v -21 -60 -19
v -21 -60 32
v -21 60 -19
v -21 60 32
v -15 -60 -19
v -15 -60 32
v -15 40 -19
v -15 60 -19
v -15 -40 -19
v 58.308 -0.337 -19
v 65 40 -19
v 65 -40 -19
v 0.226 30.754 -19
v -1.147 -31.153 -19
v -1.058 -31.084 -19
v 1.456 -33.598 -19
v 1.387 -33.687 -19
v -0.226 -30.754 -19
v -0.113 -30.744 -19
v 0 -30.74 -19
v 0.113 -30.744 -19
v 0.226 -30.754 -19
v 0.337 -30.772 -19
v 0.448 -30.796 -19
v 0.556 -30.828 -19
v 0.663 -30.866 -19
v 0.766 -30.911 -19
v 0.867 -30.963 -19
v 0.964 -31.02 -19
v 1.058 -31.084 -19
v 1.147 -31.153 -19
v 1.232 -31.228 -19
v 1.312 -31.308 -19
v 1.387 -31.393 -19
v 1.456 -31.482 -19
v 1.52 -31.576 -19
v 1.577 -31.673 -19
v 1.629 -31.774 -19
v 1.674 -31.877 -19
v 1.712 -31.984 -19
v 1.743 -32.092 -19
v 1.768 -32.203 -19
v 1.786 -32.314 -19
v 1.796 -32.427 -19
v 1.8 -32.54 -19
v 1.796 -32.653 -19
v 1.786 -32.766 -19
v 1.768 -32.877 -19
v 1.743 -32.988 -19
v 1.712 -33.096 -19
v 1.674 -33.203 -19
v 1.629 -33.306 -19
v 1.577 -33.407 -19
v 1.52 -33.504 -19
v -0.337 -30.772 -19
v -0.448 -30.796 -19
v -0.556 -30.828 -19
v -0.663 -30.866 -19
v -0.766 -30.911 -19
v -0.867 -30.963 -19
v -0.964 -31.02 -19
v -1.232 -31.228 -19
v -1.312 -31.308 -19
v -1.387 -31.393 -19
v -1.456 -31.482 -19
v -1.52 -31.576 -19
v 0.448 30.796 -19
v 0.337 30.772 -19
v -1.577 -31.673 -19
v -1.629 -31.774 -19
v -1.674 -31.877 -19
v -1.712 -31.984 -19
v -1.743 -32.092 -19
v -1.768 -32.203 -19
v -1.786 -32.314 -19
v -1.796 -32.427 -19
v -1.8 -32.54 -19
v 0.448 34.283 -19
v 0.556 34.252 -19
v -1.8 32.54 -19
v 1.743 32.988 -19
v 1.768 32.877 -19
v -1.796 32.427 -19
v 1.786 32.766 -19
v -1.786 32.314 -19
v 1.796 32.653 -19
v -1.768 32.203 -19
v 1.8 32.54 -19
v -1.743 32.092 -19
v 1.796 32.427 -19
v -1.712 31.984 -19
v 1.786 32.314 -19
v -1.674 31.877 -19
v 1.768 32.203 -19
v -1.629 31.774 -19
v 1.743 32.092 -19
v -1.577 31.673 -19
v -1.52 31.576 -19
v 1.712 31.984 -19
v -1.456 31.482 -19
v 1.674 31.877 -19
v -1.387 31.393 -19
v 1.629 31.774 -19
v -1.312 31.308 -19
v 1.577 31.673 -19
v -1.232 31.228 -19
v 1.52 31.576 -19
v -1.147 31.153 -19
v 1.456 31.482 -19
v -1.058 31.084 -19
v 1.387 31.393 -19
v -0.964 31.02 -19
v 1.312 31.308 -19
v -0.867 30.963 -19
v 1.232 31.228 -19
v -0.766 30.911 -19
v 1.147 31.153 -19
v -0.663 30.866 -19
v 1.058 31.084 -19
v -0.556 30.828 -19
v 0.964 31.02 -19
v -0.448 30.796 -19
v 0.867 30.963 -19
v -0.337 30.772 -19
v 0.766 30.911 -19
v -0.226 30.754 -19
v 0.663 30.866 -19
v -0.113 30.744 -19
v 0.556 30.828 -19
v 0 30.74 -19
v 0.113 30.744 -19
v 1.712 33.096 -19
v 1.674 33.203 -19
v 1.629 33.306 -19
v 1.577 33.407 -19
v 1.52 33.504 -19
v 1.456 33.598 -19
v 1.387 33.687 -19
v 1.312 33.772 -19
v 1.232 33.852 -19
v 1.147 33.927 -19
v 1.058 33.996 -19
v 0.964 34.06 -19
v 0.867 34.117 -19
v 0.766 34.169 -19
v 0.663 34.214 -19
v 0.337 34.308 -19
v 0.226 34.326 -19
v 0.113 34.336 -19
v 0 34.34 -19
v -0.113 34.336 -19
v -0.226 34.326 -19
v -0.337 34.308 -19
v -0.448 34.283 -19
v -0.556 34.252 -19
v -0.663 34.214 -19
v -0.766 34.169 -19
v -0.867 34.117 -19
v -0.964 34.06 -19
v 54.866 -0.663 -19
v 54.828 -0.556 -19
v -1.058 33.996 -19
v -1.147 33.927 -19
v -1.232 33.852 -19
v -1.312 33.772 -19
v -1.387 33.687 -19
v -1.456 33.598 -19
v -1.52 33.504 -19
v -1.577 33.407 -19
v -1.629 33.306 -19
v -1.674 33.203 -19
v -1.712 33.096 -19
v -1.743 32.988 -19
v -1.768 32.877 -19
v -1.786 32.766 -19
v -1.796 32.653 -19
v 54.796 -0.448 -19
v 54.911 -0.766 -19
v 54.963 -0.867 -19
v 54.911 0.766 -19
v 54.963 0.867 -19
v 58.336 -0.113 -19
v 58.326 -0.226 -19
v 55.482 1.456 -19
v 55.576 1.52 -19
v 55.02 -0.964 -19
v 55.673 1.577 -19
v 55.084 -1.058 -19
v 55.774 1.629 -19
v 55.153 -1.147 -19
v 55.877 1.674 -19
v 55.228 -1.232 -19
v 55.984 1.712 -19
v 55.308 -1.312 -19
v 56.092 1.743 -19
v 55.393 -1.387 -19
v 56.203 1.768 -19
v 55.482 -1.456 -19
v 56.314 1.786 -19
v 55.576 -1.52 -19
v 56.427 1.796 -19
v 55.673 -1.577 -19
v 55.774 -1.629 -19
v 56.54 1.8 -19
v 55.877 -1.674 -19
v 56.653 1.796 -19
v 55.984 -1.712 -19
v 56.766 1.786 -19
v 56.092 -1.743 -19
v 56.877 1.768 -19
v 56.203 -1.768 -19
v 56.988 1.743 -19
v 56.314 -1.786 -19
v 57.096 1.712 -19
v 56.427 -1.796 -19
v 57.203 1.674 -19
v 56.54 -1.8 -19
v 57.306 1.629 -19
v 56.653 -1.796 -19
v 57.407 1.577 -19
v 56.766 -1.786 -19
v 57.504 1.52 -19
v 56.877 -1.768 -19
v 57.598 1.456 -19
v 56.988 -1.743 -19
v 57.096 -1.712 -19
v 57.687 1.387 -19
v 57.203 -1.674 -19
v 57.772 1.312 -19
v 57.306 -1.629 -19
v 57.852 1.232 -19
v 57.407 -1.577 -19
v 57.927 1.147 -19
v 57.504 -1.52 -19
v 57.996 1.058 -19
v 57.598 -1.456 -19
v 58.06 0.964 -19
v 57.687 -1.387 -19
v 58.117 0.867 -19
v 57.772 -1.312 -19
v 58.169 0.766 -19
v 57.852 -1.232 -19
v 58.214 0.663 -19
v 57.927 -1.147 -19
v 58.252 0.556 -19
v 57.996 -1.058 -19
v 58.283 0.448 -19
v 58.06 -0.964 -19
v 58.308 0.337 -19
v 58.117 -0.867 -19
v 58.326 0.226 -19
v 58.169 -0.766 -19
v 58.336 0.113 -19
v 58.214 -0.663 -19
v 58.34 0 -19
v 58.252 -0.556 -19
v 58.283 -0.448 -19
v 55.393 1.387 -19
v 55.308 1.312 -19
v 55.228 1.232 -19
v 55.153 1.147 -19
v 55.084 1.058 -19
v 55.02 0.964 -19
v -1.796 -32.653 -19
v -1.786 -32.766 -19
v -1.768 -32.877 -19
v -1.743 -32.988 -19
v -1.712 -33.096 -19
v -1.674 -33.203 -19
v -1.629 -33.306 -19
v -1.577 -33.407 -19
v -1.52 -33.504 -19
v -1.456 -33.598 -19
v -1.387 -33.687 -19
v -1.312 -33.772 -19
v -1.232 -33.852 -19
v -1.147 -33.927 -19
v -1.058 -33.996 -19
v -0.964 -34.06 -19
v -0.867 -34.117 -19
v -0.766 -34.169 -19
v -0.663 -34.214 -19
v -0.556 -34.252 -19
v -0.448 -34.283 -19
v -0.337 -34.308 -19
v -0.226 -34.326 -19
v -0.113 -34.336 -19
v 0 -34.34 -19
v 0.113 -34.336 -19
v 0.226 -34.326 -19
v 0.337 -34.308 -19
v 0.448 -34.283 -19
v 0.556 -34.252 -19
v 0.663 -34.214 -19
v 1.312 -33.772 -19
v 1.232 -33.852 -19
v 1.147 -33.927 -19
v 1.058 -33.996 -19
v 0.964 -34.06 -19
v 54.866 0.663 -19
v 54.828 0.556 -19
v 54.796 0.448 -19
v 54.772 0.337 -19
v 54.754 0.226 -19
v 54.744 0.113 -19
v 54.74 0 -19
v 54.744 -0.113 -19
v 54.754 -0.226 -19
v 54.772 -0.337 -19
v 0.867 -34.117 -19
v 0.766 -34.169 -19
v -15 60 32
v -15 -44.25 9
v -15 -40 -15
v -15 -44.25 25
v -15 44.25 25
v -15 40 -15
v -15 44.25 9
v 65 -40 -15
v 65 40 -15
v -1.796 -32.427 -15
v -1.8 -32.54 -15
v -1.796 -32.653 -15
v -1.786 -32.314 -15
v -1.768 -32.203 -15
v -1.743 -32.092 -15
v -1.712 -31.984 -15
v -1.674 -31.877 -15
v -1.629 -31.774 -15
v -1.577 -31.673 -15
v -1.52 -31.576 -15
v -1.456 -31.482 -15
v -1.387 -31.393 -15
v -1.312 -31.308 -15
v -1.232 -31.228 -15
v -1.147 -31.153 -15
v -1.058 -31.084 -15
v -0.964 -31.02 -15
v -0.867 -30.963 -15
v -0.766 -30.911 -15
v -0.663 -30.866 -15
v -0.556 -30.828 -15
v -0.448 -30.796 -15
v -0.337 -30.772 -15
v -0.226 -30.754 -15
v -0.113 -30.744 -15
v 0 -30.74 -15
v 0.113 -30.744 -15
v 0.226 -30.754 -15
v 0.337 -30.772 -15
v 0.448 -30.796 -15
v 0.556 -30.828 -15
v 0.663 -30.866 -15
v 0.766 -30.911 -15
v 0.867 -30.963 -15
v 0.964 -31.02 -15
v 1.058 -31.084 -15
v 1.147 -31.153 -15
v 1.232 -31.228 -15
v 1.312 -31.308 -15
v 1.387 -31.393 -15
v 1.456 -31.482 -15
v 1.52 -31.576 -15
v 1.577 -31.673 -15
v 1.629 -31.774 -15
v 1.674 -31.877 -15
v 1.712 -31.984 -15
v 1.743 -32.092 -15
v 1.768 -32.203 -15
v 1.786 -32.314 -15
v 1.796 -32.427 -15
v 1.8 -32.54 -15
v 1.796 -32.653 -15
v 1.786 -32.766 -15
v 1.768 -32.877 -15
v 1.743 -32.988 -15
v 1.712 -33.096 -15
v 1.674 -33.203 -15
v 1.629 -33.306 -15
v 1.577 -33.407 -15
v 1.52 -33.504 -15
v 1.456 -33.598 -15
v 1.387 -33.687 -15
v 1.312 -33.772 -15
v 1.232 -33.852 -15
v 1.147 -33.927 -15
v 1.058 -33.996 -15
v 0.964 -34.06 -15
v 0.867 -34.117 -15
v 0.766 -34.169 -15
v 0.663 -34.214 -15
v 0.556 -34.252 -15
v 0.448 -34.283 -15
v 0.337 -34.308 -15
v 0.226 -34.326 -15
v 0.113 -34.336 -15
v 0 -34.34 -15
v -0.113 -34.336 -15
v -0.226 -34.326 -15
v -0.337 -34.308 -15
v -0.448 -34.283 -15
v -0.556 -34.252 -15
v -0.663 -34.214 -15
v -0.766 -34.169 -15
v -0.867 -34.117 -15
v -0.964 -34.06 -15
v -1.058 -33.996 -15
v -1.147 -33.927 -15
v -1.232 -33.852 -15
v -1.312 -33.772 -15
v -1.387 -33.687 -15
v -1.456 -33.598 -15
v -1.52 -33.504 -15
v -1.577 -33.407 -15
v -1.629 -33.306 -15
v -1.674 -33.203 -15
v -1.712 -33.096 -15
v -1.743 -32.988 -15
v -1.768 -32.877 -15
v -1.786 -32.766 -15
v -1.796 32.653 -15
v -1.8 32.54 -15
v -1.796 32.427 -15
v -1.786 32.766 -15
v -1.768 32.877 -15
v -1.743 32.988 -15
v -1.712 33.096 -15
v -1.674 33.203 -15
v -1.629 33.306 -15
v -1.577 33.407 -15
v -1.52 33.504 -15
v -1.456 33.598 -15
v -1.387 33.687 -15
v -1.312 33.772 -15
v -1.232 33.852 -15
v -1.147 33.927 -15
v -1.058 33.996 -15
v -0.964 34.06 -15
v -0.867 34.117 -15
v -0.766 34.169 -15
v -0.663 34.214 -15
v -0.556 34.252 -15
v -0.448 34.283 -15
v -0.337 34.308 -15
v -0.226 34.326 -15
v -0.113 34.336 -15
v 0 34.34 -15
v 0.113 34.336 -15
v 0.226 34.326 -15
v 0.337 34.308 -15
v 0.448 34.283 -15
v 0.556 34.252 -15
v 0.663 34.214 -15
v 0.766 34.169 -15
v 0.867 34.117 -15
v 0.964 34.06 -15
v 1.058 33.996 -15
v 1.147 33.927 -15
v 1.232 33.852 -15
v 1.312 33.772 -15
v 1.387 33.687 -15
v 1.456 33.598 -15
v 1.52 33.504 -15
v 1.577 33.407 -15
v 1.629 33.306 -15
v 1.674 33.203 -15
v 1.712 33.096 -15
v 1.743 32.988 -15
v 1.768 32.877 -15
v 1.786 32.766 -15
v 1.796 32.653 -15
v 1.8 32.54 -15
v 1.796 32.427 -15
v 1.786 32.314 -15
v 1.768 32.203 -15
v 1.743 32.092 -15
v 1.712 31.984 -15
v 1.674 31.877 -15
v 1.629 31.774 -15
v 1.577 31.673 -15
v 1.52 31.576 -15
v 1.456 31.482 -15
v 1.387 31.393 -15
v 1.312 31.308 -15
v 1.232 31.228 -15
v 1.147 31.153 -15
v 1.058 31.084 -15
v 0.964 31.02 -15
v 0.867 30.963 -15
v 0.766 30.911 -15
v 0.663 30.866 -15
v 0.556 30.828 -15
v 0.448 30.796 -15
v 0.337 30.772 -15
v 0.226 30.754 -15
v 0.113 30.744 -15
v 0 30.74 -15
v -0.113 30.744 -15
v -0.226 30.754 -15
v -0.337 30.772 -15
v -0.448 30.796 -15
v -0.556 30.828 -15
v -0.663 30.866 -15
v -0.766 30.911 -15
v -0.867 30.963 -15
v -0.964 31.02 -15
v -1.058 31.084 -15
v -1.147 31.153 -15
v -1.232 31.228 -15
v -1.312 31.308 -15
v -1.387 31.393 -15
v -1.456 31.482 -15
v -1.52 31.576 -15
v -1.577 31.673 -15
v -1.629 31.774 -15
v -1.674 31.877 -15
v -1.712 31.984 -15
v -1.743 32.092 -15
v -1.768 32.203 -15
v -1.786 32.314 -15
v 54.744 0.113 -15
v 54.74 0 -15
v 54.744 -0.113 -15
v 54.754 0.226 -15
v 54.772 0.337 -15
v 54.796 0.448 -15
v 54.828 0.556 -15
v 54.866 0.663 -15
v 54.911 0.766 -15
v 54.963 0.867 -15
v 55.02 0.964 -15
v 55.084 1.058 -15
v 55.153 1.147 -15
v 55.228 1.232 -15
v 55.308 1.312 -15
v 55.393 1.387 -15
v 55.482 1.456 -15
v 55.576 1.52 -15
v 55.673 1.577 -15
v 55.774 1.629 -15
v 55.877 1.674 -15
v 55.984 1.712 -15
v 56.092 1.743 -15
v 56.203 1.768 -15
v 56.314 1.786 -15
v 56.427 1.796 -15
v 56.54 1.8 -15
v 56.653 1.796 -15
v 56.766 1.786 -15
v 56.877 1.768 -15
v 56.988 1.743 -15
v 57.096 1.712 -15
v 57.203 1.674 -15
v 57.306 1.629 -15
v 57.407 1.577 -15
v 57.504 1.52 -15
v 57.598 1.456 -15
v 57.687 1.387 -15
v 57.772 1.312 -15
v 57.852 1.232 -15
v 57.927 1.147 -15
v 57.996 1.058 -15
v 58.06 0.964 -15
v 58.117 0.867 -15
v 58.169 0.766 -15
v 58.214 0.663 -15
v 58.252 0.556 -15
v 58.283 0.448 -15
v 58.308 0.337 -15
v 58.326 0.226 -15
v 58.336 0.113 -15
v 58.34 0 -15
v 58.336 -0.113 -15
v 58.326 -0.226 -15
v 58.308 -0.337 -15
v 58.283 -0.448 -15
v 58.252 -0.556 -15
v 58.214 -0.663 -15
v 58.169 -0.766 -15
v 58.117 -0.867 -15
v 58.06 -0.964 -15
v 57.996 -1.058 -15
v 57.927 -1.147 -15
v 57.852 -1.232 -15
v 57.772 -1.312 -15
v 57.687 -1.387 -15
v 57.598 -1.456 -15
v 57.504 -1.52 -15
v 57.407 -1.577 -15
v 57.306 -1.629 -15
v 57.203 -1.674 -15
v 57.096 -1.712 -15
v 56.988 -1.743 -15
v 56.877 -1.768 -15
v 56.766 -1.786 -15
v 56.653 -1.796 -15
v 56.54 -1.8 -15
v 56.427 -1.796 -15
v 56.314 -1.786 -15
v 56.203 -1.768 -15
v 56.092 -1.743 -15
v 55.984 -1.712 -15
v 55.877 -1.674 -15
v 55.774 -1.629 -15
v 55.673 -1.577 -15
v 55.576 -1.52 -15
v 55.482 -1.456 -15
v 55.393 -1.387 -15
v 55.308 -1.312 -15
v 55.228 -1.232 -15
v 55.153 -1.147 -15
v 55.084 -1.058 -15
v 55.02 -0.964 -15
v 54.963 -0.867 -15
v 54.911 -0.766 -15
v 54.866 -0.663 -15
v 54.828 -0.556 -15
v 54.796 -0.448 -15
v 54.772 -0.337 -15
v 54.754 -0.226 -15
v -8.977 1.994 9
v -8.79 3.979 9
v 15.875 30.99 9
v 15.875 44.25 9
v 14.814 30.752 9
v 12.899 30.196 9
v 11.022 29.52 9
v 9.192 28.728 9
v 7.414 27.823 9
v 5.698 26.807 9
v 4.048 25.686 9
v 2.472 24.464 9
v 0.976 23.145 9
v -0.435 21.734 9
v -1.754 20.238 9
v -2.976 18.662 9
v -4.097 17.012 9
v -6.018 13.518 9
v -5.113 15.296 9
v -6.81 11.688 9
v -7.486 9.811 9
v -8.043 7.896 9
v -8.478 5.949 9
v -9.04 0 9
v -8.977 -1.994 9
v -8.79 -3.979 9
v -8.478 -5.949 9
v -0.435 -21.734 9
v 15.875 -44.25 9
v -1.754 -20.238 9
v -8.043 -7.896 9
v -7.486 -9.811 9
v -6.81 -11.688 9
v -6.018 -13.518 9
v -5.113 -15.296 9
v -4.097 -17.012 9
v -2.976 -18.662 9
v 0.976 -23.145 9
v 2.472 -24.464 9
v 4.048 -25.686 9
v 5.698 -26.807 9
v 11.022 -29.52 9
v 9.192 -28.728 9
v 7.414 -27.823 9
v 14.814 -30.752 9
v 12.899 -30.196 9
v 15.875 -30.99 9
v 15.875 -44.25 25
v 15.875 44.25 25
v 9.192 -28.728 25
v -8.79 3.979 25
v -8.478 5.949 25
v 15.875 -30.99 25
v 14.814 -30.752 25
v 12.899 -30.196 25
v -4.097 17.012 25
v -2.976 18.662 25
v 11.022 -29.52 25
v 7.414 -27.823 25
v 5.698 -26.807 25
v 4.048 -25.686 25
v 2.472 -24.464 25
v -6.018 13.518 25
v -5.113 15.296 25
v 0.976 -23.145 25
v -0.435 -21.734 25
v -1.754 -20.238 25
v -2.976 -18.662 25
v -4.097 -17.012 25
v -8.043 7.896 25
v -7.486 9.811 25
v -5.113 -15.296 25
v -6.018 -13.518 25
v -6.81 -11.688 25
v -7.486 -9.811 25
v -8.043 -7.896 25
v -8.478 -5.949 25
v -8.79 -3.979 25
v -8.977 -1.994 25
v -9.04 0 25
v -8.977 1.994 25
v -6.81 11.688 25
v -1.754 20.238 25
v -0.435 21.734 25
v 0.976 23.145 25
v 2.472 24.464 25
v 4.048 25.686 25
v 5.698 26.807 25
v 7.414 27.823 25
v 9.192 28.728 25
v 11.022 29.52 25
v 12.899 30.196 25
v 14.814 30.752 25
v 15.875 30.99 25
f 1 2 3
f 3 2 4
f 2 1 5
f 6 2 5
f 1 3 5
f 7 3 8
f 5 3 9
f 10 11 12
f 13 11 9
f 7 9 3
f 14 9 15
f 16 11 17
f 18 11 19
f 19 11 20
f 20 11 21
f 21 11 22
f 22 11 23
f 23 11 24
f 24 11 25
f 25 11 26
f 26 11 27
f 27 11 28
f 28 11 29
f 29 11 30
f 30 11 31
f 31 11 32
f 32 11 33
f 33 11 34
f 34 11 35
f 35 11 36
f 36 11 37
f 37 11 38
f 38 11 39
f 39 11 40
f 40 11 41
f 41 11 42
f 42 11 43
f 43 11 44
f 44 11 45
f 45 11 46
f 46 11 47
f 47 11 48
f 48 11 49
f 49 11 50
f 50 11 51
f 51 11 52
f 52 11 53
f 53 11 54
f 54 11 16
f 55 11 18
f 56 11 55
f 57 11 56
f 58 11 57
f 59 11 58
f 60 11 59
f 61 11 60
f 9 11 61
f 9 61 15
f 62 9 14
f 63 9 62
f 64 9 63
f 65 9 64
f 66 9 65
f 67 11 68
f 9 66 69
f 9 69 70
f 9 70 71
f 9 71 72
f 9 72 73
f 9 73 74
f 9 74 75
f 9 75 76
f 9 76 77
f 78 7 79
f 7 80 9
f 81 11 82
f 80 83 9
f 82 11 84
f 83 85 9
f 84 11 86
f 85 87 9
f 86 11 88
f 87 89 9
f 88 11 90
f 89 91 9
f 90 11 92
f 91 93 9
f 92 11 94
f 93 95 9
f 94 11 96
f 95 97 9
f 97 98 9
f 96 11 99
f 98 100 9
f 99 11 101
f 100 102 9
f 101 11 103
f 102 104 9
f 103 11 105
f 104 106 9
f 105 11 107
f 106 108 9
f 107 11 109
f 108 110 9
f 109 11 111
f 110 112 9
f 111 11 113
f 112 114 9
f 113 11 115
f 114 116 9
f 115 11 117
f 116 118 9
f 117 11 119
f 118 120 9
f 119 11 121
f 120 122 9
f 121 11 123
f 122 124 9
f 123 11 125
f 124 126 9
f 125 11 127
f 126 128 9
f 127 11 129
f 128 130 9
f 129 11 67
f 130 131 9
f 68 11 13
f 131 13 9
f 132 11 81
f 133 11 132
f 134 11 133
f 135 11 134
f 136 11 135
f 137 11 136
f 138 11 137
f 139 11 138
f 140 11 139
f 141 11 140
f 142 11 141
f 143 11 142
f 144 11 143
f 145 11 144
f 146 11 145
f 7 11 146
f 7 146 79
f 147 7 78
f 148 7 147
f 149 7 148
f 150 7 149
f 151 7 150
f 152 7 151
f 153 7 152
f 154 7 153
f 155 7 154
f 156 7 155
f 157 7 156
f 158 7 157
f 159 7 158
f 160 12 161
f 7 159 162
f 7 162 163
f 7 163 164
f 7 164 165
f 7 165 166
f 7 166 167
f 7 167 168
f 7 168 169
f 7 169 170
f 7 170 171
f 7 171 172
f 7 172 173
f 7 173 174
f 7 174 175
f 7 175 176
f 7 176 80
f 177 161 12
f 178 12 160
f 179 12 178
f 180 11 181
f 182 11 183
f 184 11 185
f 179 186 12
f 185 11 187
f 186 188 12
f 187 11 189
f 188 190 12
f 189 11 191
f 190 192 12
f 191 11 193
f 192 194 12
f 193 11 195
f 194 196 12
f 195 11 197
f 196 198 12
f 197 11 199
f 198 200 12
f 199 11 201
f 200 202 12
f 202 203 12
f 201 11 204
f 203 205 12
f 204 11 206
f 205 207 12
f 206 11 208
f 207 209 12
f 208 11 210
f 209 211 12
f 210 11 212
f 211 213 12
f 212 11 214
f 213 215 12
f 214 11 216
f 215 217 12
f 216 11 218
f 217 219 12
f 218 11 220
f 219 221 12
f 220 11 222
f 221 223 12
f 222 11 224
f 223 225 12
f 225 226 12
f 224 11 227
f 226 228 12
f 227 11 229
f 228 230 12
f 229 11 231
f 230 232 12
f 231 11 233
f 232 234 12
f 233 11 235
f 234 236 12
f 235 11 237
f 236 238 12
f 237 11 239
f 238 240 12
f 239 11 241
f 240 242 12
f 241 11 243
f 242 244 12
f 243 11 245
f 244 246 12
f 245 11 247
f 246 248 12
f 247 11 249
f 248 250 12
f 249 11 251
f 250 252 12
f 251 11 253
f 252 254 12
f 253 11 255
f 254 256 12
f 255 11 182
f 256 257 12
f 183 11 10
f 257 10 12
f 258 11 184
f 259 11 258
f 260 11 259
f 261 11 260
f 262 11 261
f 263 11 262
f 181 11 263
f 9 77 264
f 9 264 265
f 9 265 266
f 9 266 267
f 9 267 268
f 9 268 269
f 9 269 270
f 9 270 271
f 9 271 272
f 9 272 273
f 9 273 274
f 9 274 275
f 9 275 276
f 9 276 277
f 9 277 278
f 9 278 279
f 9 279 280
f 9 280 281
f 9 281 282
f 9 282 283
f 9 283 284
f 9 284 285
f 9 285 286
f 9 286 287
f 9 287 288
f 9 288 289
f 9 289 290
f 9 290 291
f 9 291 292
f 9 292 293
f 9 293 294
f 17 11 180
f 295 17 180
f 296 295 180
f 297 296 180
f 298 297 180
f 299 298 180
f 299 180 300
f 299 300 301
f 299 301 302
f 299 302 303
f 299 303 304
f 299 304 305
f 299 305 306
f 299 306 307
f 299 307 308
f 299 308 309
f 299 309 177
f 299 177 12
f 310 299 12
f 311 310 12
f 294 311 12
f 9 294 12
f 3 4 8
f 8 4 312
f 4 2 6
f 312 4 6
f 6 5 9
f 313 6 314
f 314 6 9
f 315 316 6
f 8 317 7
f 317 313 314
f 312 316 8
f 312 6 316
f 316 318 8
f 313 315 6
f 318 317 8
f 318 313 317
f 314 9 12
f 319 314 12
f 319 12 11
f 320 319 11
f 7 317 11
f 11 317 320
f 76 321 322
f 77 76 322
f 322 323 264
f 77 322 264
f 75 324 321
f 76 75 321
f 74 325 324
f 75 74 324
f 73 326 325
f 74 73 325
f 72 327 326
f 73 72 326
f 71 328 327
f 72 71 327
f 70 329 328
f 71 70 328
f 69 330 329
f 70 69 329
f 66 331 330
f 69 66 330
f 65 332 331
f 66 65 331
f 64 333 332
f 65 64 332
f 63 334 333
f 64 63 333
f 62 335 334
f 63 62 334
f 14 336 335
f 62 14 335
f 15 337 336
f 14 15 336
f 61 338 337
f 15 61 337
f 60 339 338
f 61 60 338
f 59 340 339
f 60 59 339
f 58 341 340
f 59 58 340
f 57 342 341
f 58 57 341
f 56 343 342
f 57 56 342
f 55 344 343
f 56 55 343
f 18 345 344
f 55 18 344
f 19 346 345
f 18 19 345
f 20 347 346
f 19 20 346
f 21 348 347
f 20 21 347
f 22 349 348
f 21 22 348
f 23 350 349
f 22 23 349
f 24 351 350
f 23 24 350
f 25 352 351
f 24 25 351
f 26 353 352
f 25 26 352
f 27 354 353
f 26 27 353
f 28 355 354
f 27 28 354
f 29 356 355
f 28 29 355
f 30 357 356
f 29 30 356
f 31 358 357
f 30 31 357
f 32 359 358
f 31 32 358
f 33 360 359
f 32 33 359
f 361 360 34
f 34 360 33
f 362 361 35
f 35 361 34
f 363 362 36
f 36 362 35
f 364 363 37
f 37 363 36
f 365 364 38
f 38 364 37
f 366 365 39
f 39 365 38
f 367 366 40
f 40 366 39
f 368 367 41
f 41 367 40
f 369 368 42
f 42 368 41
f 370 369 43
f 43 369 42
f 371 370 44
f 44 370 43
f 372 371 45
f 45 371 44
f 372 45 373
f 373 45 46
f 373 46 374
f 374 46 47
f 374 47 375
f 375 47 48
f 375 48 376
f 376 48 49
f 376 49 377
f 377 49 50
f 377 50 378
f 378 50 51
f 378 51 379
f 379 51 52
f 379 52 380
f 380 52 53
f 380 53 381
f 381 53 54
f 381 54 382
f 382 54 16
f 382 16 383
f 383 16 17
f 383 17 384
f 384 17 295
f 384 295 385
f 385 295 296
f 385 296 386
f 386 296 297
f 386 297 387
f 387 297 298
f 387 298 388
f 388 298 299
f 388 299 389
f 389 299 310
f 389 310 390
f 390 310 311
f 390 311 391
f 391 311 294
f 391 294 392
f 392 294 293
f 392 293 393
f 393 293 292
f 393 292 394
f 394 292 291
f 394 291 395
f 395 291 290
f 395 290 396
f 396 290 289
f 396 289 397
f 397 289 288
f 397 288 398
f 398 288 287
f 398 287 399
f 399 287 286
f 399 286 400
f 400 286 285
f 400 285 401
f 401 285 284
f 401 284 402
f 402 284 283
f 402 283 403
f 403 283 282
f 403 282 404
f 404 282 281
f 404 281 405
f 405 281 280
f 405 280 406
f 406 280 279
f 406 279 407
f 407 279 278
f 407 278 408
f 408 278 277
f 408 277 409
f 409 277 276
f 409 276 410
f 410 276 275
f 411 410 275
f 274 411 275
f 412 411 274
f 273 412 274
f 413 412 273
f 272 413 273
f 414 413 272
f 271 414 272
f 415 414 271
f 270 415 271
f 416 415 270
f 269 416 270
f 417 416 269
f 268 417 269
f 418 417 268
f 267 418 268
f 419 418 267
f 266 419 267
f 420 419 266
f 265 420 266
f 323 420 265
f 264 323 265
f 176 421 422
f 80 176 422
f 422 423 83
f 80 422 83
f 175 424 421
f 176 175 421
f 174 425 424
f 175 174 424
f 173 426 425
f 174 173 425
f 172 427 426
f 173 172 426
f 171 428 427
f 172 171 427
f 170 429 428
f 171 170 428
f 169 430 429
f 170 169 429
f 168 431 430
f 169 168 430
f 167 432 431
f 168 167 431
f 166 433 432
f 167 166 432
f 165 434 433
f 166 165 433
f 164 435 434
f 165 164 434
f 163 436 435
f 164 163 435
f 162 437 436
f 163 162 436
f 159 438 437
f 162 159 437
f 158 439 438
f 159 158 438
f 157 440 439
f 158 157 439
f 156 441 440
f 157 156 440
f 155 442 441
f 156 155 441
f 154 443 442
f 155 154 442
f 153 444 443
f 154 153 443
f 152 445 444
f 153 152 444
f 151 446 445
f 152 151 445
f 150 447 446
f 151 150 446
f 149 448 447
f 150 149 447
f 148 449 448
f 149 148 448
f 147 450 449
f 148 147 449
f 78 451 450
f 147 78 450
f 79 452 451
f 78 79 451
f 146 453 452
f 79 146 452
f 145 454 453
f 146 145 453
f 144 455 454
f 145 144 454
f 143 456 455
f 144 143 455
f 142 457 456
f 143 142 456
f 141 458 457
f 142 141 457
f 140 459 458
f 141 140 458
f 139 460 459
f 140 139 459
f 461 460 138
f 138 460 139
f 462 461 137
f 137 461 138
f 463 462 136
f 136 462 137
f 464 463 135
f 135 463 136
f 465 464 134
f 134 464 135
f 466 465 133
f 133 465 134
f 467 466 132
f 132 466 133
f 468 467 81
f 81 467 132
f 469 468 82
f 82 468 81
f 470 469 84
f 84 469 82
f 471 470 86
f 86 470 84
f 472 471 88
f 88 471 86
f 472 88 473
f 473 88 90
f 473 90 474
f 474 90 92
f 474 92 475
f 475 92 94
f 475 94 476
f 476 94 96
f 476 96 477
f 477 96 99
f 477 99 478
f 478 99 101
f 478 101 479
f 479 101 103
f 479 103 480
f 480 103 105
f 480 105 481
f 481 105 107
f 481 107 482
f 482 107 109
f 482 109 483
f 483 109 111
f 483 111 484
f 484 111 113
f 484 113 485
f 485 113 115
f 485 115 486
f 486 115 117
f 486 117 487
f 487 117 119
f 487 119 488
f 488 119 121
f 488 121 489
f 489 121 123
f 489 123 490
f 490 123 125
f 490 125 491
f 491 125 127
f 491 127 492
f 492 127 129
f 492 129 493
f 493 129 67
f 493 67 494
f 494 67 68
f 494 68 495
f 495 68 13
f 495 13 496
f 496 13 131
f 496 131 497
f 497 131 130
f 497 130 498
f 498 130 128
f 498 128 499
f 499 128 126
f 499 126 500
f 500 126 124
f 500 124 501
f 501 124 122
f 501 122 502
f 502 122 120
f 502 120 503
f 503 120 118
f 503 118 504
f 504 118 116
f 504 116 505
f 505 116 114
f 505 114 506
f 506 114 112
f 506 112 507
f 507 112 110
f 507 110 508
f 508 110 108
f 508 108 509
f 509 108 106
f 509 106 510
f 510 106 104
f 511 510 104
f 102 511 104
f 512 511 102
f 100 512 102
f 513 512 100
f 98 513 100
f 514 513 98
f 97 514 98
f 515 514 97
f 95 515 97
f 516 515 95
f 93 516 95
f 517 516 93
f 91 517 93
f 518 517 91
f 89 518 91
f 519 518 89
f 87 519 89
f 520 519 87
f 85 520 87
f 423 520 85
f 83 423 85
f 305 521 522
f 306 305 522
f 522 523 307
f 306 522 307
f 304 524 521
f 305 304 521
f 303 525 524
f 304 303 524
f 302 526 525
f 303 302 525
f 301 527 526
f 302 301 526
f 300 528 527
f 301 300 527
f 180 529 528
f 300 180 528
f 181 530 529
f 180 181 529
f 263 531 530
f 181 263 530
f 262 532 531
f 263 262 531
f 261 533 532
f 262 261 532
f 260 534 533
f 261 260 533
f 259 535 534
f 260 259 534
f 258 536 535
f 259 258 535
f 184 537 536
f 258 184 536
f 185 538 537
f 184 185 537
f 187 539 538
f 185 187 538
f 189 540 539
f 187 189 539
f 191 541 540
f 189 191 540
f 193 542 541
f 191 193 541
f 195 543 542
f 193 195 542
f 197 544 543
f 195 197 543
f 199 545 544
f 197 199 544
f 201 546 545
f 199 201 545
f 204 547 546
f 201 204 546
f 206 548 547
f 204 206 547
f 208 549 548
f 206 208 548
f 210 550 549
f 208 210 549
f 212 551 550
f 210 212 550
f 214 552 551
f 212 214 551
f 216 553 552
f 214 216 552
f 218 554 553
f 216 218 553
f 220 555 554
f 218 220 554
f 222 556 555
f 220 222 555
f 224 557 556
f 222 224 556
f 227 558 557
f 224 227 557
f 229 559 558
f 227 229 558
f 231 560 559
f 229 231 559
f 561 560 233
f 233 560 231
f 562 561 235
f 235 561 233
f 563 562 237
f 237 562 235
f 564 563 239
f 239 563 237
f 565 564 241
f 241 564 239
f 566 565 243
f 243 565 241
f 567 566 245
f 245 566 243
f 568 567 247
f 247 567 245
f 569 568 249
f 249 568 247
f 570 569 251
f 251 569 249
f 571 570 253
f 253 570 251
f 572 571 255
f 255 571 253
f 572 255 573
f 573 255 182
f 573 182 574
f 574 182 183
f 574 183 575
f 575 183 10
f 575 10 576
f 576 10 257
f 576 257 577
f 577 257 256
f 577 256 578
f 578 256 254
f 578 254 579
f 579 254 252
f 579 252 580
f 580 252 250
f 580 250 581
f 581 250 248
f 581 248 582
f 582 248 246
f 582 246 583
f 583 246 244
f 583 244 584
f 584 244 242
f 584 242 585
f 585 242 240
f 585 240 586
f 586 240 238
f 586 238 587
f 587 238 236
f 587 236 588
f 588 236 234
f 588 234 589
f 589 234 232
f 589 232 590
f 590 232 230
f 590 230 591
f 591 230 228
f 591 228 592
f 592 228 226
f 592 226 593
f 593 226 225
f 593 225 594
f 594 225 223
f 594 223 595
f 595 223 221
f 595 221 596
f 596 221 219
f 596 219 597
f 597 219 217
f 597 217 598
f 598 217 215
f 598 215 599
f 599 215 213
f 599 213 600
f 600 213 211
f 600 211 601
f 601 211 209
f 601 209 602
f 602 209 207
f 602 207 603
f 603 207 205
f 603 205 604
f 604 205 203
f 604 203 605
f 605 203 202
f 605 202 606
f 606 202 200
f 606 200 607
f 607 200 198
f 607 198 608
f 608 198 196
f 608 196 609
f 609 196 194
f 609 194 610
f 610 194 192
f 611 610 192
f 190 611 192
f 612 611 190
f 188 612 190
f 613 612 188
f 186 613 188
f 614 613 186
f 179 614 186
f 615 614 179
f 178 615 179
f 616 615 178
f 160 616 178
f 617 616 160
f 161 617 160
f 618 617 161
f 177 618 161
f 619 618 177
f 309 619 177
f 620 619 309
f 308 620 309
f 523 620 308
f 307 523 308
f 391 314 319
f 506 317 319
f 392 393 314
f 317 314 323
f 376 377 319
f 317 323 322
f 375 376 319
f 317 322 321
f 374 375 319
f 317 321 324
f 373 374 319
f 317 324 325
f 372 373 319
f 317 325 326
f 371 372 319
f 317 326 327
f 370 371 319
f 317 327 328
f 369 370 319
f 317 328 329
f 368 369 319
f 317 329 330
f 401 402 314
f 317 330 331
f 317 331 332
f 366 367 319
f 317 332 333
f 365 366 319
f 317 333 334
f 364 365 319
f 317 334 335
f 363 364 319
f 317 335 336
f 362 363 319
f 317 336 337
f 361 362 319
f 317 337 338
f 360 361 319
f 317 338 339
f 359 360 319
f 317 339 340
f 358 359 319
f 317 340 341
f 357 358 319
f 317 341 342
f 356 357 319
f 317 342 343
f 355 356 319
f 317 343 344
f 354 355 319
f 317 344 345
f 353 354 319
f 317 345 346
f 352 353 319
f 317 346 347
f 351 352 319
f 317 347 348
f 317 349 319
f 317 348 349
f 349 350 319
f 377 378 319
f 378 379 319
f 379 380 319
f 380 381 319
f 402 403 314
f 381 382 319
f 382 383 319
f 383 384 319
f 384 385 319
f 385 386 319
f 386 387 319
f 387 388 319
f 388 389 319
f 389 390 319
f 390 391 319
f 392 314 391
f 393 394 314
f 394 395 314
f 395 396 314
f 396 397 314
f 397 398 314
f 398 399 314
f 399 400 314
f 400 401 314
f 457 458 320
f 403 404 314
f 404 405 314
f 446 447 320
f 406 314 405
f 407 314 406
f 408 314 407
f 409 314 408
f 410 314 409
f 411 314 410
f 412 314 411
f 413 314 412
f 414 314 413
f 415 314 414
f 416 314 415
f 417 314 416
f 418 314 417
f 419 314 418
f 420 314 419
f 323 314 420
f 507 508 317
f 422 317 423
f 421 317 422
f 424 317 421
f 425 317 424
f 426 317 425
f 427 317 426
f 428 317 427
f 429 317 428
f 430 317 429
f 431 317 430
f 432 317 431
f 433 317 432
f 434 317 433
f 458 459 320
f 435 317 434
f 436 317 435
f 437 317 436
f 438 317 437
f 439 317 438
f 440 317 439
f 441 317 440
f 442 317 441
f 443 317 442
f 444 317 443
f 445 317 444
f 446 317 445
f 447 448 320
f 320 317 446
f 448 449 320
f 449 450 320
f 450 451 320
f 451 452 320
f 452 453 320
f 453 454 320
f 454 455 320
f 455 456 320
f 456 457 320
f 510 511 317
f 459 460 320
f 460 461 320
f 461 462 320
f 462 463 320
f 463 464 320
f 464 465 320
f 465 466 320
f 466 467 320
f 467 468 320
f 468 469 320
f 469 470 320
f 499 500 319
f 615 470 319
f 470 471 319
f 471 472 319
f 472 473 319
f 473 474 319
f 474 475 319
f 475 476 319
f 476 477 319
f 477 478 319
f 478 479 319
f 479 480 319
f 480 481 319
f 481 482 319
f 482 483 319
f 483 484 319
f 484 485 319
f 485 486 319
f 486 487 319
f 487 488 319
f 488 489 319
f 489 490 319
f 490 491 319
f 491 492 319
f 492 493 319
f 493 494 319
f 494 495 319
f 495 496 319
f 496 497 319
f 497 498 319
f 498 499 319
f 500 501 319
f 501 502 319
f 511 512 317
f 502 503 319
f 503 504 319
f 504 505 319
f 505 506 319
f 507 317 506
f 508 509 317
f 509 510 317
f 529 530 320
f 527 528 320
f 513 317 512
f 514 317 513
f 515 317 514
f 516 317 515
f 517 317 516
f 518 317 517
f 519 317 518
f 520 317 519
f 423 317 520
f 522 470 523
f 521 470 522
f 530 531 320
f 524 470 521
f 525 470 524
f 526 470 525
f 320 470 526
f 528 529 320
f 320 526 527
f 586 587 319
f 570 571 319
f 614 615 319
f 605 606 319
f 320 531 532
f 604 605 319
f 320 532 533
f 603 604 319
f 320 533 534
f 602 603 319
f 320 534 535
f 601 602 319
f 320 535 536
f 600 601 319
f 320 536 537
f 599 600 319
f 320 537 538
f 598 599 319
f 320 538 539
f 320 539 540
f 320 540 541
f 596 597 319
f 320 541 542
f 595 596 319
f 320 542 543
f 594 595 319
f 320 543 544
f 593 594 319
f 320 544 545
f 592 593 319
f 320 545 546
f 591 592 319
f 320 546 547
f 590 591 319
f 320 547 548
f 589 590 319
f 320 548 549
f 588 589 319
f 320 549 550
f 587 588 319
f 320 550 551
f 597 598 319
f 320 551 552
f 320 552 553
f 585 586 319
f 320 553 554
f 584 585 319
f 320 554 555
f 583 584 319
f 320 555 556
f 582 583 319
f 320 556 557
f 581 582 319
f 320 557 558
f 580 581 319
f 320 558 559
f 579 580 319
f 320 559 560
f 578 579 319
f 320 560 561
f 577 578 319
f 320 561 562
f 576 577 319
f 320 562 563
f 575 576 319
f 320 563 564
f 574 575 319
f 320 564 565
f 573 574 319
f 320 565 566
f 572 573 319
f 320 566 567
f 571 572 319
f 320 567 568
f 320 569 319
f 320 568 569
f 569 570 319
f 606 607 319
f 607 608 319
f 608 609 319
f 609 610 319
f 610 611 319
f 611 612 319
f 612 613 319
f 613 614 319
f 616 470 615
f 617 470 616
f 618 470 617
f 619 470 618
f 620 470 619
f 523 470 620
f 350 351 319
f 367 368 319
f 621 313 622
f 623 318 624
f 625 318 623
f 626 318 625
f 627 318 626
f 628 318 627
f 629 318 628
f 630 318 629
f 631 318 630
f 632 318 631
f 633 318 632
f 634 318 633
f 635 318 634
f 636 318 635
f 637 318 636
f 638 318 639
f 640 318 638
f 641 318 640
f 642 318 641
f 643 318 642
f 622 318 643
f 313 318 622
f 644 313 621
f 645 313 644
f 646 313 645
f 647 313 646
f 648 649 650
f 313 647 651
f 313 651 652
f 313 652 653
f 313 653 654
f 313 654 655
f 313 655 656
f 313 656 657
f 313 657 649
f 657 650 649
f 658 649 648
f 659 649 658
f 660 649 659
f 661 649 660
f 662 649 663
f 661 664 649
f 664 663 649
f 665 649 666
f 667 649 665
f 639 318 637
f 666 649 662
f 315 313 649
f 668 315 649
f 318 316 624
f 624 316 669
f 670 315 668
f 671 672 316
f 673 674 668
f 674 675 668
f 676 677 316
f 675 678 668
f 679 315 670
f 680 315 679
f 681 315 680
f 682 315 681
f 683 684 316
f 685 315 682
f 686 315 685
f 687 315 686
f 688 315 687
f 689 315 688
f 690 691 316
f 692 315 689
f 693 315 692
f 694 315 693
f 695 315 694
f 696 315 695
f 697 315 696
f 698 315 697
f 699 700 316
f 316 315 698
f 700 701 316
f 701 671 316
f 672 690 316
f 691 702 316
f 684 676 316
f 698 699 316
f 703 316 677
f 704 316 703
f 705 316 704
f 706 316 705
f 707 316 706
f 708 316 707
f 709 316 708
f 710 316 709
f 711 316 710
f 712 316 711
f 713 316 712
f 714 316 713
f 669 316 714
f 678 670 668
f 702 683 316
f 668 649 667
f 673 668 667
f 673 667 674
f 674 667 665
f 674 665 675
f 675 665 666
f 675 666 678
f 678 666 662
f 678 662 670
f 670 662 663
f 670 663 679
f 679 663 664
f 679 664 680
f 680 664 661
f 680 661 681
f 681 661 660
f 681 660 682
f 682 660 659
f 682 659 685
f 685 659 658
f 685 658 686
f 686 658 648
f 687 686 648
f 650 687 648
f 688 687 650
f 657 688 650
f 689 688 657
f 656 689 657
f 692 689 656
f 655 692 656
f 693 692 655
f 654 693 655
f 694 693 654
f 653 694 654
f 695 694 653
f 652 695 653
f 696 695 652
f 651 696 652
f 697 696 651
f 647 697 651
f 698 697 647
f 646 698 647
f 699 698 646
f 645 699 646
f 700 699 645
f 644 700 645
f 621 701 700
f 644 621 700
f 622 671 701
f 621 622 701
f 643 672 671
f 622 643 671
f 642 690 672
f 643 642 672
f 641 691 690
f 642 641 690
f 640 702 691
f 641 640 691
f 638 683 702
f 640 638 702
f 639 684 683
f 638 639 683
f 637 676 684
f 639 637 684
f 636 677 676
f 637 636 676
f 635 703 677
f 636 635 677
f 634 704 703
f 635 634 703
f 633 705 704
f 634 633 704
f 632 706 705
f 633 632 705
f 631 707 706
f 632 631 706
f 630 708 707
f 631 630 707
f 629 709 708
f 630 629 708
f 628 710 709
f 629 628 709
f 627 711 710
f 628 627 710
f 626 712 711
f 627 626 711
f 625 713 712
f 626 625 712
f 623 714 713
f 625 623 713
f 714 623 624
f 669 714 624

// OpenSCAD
compR = 63.5;
halfcomp = 63.5;// /2
holderDeckH = 22.71;//22.71;
//translate([0,0,16])

module compHolder() {

difference() {
cube(size=[halfcomp/2,compR+25,16],center = true);
translate([holderDeckH,0,-9])
cylinder(h=20,r=compR/2,$fn=100);
}
}

translate([0,0,17])
compHolder();

translate([-18,0,6.5])
cube(size=[6,120,51],center = true);//back wall



module mountHole() {
translate([0,32.54,-22])

cylinder(h=10,r=3.6/2,$fn=100);

translate([0,-32.54,-22])

cylinder(h=10,r=3.6/2,$fn=100);

translate([56.54,0,-22])

cylinder(h=10,r=3.6/2,$fn=100);
}

difference() {
translate([25,0,-17])
cube(size=[80,80,4],center = true);//platform

mountHole();
}
